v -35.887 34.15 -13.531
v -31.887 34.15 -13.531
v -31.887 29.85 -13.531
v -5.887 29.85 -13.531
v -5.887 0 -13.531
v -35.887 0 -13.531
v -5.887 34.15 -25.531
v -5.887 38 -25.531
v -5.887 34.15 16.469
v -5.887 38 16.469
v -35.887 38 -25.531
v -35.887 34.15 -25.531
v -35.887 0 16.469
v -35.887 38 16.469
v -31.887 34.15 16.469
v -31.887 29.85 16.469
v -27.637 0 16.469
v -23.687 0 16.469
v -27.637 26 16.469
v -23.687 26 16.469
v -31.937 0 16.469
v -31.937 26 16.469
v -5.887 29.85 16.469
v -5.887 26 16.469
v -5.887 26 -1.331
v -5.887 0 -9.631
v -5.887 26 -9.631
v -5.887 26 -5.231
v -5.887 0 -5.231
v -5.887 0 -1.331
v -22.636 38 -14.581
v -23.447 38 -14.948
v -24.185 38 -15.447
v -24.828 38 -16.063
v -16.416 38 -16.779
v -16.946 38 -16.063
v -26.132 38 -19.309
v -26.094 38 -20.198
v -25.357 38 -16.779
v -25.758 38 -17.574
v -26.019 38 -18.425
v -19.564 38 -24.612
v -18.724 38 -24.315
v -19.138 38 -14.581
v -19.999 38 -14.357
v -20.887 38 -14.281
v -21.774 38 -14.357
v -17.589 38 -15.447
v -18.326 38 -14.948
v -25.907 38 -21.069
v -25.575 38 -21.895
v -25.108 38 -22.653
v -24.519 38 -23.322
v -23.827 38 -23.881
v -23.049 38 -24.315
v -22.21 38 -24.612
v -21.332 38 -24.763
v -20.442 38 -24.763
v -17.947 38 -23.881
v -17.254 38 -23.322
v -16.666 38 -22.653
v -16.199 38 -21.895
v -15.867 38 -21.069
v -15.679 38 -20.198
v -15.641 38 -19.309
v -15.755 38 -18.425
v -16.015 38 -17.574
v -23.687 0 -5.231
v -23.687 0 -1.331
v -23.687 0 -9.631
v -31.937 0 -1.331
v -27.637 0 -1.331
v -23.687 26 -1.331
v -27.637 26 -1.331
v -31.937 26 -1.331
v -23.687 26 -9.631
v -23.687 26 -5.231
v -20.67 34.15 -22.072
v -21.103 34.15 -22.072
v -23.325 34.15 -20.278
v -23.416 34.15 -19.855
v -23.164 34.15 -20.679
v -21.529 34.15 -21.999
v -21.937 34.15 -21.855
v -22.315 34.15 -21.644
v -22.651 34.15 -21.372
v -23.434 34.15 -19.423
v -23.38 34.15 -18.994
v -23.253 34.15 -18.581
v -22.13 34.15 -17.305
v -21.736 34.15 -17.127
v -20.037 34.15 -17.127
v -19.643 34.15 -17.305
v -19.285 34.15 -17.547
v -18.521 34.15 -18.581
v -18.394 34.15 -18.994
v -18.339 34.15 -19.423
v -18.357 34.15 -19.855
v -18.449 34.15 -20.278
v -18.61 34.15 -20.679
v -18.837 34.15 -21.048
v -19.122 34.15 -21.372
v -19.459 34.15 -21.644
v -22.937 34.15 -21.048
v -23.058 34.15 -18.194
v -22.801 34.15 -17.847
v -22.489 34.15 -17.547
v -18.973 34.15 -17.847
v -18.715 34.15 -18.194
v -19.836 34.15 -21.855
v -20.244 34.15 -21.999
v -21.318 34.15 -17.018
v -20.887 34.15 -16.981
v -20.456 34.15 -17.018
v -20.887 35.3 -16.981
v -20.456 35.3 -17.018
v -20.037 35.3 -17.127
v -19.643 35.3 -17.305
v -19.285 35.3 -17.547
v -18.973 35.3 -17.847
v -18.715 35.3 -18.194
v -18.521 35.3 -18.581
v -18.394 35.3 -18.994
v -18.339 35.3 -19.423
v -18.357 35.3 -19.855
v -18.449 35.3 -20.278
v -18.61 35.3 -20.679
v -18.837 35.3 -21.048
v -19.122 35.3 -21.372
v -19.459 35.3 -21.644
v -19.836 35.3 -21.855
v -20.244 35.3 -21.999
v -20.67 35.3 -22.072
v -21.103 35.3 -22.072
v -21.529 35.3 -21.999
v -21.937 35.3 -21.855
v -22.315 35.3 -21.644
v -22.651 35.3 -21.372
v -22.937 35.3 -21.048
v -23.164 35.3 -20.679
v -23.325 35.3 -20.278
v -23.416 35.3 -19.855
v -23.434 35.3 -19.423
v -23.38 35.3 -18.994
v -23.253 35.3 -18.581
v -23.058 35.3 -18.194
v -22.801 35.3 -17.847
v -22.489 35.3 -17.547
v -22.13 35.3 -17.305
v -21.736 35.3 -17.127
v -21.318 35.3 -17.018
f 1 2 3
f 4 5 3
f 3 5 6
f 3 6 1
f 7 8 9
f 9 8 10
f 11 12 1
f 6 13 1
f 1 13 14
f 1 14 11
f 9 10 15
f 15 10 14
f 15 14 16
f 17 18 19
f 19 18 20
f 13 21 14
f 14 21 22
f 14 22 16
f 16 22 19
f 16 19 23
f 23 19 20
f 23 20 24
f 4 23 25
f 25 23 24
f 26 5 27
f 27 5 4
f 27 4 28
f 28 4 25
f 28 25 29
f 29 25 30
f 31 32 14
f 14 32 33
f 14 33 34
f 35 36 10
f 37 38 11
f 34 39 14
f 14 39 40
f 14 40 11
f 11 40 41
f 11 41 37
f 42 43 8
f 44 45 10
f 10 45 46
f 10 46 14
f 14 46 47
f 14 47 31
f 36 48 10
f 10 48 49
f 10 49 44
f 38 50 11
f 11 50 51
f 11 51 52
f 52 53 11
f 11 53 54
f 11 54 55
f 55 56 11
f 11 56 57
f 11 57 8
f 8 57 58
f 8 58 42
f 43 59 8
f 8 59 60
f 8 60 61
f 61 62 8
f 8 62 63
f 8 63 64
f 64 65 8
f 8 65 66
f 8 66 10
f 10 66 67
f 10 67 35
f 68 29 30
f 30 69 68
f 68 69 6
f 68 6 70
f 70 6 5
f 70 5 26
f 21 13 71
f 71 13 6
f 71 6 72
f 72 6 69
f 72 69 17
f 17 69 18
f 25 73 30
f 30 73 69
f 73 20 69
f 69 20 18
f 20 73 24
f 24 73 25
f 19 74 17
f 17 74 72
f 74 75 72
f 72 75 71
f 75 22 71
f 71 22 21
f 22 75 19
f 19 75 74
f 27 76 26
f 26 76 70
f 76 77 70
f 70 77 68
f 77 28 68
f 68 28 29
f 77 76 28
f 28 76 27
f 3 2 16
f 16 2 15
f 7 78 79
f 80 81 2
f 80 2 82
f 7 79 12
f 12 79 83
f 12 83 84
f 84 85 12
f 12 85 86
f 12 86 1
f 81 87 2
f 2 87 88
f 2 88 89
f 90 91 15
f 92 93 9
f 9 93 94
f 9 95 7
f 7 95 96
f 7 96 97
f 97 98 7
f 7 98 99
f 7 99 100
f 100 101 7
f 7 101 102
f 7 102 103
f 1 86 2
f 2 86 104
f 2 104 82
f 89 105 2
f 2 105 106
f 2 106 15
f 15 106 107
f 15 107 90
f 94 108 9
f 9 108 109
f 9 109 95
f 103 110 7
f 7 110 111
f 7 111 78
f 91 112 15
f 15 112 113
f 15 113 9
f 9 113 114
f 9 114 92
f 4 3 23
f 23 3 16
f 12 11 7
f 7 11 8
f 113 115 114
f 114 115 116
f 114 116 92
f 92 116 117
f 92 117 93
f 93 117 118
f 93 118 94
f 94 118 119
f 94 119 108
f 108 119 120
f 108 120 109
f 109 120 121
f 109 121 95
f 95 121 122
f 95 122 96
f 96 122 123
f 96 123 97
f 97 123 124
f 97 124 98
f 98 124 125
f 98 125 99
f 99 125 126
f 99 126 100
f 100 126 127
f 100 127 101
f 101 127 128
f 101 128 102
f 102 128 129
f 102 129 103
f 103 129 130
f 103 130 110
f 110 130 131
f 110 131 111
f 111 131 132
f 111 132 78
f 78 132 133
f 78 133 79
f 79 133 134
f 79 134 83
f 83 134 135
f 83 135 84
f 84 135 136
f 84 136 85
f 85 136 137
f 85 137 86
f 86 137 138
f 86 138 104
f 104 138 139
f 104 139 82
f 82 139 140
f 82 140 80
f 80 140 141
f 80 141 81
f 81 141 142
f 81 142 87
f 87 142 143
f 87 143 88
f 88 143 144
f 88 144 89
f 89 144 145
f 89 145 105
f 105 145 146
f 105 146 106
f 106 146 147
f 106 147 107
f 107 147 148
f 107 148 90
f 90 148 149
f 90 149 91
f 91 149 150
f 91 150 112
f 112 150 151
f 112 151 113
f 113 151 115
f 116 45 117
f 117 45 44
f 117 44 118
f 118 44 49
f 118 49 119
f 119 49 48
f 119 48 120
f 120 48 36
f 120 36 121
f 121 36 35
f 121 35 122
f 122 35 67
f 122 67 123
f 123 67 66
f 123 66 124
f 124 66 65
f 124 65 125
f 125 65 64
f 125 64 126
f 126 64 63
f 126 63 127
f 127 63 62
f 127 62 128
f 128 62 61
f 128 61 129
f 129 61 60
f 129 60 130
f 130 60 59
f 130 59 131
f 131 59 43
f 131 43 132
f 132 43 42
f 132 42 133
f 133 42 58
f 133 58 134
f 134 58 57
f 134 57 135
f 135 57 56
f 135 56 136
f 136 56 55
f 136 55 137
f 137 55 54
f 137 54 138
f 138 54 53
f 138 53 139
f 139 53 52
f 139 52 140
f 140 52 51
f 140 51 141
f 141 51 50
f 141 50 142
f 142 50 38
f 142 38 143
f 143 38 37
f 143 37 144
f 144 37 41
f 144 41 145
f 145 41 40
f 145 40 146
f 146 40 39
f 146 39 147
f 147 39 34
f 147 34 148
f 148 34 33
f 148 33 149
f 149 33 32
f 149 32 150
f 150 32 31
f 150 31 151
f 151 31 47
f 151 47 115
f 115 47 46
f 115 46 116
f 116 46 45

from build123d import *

# Parameters (mm, degrees)
ESQUISSE1_W                                       = 30
ESQUISSE1_H                                       = 30
BOSS_EXTRU_1_DEPTH                                = 38
ESQUISSE2_W                                       = 17.8
ESQUISSE2_H                                       = 4.4
ESQUISSE2_W_2                                     = 4.3
ESQUISSE2_H_2                                     = 17.8
ENL_V_MAT_EXTRU_1_DEPTH                           = 26
ESQUISSE3_W                                       = 26
ESQUISSE3_H                                       = 4.3
ENL_V_MAT_EXTRU_3_DEPTH                           = 31
ESQUISSE4_W                                       = 30
ESQUISSE4_H                                       = 3.85
BOSS_EXTRU_2_DEPTH                                = 12
FRAISAGE_POUR_VIS_T_TE_FRAIS_E_BOMB_E_D           = 5.09999996
FRAISAGE_POUR_VIS_T_TE_FRAIS_E_BOMB_E_CSINK_D     = 10.500000082
FRAISAGE_POUR_VIS_T_TE_FRAIS_E_BOMB_E_CSINK_ANGLE = 90


with BuildPart() as part:
    # Esquisse1 → Boss.-Extru.1 (new body)
    with BuildSketch(Plane(origin=(0, 0, 0), x_dir=(1, 0, 0), z_dir=(0, 1, 0))):
        with Locations((-20.886738322, -1.468531469)):
            Rectangle(ESQUISSE1_W, ESQUISSE1_H)
    extrude(amount=BOSS_EXTRU_1_DEPTH)

    # Esquisse2 → Enlèv. mat.-Extru.1 (cut)
    with BuildSketch(Plane.XZ):
        with Locations((-14.786738322, -7.431468531)):
            Rectangle(ESQUISSE2_W, ESQUISSE2_H)
        with Locations((-29.786738322, 7.568531469)):
            Rectangle(ESQUISSE2_W_2, ESQUISSE2_H_2)
        with Locations((-14.786738322, 7.568531469)):
            Rectangle(ESQUISSE2_W, ESQUISSE2_H_2)
    extrude(amount=-ENL_V_MAT_EXTRU_1_DEPTH, mode=Mode.SUBTRACT)

    # Esquisse3 → Enlèv. mat.-Extru.3 (cut, through all)
    with BuildSketch(Plane.XY.offset(16.468531469)):
        with Locations((-18.886738322, 32)):
            Rectangle(ESQUISSE3_W, ESQUISSE3_H)
    extrude(amount=-ENL_V_MAT_EXTRU_3_DEPTH, mode=Mode.SUBTRACT)

    # Esquisse4 → Boss.-Extru.2 (add)
    with BuildSketch(Plane(origin=(0, 0, -13.531468531), x_dir=(-1, 0, 0), z_dir=(0, 0, -1))):
        with Locations((20.886738322, 36.075)):
            Rectangle(ESQUISSE4_W, ESQUISSE4_H)
    extrude(amount=BOSS_EXTRU_2_DEPTH)

    # Fraisage pour vis à tête fraisée bombée #51 (through all)
    with Locations(Plane(origin=(-20.886738322, 38, -19.531468531), x_dir=(0, 0, 1), z_dir=(0, 1, 0))):
        with Locations((0, 0)):
            CounterSinkHole(FRAISAGE_POUR_VIS_T_TE_FRAIS_E_BOMB_E_D / 2, FRAISAGE_POUR_VIS_T_TE_FRAIS_E_BOMB_E_CSINK_D / 2, counter_sink_angle=FRAISAGE_POUR_VIS_T_TE_FRAIS_E_BOMB_E_CSINK_ANGLE)


solid = part.part
